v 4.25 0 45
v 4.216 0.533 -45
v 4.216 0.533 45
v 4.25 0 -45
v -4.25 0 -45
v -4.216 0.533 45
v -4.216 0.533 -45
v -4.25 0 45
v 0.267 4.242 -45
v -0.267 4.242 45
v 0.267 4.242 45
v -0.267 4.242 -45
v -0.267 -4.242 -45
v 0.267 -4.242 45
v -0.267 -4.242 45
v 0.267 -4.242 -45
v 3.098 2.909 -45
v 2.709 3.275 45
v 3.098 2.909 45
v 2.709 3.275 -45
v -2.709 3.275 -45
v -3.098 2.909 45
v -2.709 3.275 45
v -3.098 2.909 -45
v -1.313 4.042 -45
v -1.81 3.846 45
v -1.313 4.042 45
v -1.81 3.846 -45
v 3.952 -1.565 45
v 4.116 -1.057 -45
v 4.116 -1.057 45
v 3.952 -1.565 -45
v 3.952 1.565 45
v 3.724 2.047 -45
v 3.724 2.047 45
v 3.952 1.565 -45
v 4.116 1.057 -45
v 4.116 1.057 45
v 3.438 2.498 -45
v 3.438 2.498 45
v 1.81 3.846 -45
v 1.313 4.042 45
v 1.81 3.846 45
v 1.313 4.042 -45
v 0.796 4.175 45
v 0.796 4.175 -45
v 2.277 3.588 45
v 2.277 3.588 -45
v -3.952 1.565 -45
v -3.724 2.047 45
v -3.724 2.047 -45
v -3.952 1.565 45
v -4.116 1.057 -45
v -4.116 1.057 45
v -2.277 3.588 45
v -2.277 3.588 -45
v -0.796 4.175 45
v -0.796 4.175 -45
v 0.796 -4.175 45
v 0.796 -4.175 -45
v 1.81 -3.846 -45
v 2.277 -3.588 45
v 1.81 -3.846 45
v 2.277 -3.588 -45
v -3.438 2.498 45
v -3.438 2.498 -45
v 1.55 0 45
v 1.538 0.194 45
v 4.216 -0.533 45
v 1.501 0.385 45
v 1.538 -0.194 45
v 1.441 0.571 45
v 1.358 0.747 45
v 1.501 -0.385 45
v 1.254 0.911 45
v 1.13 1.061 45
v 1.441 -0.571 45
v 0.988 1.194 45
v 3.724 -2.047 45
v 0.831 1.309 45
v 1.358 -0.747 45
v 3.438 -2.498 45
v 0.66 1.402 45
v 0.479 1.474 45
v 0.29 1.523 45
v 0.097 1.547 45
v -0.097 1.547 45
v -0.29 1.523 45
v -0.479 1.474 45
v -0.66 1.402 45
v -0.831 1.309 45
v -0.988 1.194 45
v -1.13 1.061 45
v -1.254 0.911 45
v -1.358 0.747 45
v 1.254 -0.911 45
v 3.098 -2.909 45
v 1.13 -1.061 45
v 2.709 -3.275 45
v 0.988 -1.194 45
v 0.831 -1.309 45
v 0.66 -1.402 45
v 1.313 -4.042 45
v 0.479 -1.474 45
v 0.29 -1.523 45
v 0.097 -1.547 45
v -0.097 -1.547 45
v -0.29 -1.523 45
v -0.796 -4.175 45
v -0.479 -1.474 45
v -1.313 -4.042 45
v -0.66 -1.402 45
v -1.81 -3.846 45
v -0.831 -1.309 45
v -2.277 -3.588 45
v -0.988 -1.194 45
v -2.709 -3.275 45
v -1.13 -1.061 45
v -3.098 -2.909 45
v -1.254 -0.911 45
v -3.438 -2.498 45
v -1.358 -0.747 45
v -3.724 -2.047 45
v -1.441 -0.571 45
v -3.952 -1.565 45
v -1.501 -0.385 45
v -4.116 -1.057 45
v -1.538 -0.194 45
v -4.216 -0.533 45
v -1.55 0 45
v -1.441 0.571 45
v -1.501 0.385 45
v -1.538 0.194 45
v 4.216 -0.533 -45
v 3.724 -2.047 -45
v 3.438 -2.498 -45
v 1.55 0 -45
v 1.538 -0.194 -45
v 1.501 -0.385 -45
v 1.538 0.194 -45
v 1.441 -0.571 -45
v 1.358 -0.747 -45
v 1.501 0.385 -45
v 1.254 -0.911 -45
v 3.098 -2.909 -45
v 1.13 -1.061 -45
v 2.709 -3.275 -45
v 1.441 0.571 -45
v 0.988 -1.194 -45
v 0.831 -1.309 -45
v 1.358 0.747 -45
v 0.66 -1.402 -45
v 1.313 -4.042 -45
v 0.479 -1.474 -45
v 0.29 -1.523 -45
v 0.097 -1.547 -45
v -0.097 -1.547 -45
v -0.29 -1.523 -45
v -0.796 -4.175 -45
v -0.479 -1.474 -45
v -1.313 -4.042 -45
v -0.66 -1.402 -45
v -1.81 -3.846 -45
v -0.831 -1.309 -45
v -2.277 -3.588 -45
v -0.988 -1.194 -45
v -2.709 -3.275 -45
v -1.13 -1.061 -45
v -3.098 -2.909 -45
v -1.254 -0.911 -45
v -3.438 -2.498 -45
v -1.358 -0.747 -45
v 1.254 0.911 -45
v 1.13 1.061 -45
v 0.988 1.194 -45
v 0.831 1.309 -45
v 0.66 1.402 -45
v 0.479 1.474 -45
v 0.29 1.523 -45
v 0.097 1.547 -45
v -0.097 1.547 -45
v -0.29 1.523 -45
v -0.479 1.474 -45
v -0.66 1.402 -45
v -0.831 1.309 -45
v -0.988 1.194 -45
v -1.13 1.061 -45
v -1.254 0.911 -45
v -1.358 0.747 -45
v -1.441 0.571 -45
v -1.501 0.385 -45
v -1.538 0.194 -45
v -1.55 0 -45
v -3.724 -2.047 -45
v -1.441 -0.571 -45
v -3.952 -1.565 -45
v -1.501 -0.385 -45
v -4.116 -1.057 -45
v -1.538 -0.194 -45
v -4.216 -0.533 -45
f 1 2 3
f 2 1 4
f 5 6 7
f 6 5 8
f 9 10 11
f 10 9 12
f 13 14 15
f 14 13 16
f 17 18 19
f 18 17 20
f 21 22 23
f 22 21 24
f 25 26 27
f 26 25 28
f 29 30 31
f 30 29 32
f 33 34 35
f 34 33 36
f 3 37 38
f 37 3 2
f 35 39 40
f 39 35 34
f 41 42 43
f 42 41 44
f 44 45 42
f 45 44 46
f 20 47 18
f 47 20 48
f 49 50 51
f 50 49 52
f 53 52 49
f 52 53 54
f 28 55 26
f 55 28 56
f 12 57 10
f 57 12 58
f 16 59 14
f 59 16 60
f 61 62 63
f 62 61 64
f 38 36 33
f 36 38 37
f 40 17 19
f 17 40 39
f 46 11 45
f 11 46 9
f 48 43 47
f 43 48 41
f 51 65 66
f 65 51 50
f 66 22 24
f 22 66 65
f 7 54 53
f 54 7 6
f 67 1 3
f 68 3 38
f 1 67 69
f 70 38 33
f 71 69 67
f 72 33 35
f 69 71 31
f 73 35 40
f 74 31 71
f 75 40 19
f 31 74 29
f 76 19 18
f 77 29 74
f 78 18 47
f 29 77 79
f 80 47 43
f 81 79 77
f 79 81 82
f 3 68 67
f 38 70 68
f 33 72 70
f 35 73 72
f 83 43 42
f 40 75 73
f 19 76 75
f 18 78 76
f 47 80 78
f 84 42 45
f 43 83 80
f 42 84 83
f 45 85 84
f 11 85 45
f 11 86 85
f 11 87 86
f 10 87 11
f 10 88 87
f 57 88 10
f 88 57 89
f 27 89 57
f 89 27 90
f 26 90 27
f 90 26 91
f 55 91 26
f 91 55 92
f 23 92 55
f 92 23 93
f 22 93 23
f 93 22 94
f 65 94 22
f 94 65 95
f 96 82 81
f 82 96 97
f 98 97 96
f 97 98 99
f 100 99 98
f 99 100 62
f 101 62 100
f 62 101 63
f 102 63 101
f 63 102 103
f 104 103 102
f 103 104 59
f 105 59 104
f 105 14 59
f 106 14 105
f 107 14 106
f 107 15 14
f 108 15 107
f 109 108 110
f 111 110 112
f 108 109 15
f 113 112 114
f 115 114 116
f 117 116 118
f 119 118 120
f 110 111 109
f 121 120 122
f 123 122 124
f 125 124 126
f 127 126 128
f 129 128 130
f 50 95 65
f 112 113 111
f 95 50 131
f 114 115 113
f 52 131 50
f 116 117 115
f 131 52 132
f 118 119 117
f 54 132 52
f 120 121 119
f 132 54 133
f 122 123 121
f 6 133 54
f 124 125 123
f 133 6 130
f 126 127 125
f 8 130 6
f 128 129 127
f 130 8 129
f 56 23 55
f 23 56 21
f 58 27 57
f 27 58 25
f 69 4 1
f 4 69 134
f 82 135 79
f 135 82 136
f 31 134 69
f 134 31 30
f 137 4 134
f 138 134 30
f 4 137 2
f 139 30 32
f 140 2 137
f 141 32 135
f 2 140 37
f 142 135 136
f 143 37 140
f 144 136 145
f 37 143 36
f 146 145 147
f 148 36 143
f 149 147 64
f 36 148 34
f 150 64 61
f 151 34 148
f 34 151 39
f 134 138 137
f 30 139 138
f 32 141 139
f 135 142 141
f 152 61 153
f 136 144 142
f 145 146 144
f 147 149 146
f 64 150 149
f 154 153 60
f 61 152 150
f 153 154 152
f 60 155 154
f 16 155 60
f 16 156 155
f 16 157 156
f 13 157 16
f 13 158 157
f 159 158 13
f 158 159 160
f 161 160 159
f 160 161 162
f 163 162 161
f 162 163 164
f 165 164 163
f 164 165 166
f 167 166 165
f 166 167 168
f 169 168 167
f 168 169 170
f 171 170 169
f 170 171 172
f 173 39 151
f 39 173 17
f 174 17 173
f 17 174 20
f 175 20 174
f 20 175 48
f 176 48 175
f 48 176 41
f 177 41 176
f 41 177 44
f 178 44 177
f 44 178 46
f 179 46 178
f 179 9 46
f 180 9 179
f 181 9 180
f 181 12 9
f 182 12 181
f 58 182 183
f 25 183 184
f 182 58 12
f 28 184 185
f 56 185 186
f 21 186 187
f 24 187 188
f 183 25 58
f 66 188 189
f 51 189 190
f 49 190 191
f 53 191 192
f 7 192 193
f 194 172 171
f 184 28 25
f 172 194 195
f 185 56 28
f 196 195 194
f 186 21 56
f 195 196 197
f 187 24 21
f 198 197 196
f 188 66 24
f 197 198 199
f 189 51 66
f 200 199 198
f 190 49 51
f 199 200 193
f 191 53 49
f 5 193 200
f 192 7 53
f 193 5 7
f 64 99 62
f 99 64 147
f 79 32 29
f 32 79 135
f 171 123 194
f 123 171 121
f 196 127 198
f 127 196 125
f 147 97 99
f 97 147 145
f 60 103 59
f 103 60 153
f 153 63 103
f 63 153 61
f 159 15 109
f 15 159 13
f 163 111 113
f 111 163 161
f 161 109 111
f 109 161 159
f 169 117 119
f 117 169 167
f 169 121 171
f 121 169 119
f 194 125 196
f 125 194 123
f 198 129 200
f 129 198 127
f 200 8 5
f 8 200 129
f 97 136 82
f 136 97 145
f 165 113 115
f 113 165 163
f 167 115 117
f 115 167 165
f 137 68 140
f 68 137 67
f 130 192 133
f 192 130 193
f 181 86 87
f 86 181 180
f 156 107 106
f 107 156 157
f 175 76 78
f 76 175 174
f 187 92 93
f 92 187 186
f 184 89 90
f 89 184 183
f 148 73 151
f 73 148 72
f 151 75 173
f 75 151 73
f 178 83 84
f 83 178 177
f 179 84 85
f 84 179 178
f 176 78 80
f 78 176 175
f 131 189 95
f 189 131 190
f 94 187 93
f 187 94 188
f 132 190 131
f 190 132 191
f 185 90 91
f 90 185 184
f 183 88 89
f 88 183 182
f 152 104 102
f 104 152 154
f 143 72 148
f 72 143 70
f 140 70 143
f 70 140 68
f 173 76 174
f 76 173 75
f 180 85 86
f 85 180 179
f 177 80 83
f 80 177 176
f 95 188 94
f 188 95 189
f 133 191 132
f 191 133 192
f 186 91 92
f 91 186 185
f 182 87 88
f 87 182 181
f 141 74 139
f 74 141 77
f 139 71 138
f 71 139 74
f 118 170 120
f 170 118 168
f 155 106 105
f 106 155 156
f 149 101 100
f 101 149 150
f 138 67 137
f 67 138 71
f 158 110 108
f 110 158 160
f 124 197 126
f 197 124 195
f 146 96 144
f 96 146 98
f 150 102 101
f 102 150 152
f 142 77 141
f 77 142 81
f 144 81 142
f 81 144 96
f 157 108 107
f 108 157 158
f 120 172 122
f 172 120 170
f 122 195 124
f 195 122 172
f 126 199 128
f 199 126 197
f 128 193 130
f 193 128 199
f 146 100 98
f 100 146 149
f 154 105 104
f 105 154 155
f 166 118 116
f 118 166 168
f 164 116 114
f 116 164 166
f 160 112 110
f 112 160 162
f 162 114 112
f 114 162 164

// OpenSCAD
$fn = 50;


difference() {
	union() {
		translate(v = [0, 0, -45.0000000000]) {
			cylinder(h = 90, r = 4.2500000000);
		}
	}
	union() {
		translate(v = [0, 0, -100.0000000000]) {
			cylinder(h = 200, r = 1.5500000000);
		}
	}
}
